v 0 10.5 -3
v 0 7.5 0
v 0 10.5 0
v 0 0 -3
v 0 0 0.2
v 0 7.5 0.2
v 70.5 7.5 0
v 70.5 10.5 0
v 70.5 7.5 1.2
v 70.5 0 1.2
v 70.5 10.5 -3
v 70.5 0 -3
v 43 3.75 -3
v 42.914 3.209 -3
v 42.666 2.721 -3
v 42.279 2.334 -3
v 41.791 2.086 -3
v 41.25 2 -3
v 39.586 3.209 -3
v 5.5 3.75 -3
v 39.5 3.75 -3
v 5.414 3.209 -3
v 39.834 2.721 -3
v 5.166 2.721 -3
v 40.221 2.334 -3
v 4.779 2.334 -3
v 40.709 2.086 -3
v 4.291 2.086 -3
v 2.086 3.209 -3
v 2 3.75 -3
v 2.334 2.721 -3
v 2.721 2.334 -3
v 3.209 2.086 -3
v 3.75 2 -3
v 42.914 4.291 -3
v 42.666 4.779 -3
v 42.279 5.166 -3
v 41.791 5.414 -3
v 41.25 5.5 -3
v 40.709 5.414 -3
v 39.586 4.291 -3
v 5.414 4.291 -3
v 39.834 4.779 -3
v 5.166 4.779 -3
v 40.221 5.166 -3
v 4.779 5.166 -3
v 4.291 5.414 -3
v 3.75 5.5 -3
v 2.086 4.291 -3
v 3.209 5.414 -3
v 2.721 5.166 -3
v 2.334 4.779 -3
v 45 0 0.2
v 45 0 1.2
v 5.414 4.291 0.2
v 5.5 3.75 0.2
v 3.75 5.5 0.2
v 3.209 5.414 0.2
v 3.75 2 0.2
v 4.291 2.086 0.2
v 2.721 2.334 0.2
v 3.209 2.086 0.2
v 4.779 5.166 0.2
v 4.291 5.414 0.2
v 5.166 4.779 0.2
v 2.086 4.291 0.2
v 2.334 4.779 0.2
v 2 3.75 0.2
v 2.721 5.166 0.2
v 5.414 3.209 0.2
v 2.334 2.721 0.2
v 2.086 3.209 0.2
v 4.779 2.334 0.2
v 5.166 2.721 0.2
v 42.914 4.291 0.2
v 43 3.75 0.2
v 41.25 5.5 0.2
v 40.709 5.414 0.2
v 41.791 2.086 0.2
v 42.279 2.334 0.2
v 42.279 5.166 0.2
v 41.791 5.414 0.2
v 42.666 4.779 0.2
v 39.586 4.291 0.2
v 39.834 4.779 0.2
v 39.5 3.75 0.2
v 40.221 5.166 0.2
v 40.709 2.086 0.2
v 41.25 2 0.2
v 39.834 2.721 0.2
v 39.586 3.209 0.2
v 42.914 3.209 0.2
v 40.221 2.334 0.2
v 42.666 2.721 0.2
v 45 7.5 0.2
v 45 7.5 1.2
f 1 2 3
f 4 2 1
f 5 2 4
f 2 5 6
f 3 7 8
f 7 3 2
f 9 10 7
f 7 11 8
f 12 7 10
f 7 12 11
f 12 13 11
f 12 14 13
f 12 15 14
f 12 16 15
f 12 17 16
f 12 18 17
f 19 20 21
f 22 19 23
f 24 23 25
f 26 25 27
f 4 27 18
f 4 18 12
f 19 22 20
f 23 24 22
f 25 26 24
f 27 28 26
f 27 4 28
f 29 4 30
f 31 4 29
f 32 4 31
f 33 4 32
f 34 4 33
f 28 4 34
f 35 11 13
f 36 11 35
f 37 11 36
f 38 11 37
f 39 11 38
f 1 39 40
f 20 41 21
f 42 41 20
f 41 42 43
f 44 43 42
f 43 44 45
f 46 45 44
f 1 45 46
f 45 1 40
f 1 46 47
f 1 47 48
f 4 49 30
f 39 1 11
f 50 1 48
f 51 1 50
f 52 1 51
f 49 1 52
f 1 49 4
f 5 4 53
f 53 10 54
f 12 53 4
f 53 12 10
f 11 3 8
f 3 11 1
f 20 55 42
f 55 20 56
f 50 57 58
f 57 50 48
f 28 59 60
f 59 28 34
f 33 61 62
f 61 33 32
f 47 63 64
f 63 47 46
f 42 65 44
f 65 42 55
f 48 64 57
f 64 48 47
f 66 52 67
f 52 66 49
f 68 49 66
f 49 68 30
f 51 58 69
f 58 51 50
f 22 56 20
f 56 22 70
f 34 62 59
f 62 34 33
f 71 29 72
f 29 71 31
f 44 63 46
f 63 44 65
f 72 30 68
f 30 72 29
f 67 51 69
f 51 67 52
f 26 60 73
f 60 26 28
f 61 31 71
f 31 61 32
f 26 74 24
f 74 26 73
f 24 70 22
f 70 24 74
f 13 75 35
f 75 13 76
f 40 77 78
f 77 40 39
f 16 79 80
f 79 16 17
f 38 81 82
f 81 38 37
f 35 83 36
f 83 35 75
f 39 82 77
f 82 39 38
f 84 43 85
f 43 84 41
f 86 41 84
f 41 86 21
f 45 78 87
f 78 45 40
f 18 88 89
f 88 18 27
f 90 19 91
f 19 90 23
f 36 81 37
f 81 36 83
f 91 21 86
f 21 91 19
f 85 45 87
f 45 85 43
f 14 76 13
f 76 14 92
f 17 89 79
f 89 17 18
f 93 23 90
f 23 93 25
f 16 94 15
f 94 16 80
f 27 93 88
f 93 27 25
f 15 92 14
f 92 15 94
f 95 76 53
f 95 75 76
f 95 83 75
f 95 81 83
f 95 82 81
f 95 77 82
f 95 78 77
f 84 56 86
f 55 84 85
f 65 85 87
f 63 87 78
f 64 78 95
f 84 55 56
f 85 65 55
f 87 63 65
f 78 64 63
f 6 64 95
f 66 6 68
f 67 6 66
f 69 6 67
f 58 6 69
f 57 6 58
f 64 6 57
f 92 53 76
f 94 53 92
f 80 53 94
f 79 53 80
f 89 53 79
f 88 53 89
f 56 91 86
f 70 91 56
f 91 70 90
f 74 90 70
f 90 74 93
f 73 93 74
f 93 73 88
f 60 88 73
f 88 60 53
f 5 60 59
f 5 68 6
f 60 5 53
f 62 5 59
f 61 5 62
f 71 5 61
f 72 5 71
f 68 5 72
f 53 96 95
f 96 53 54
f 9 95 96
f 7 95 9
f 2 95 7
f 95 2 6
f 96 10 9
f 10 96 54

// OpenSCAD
translate([45,0,0]) #cube(size = [25.5,7.5,1.2]);

difference() {
    translate([0,0,-3]) cube(size = [70.5,10.5,3]);
    translate([3.75,3.75,-3]) cylinder(h = 20, r = 1.75, $fn=20);
    translate([41.25,3.75,-3]) cylinder(h = 20, r = 1.75, $fn=20);
}

difference() {
    cube(size = [45,7.5,0.2]);
    translate([3.75,3.75,0]) cylinder(h = 20, r = 1.75, $fn=20);
    translate([41.25,3.75,0]) cylinder(h = 20, r = 1.75, $fn=20);
}
